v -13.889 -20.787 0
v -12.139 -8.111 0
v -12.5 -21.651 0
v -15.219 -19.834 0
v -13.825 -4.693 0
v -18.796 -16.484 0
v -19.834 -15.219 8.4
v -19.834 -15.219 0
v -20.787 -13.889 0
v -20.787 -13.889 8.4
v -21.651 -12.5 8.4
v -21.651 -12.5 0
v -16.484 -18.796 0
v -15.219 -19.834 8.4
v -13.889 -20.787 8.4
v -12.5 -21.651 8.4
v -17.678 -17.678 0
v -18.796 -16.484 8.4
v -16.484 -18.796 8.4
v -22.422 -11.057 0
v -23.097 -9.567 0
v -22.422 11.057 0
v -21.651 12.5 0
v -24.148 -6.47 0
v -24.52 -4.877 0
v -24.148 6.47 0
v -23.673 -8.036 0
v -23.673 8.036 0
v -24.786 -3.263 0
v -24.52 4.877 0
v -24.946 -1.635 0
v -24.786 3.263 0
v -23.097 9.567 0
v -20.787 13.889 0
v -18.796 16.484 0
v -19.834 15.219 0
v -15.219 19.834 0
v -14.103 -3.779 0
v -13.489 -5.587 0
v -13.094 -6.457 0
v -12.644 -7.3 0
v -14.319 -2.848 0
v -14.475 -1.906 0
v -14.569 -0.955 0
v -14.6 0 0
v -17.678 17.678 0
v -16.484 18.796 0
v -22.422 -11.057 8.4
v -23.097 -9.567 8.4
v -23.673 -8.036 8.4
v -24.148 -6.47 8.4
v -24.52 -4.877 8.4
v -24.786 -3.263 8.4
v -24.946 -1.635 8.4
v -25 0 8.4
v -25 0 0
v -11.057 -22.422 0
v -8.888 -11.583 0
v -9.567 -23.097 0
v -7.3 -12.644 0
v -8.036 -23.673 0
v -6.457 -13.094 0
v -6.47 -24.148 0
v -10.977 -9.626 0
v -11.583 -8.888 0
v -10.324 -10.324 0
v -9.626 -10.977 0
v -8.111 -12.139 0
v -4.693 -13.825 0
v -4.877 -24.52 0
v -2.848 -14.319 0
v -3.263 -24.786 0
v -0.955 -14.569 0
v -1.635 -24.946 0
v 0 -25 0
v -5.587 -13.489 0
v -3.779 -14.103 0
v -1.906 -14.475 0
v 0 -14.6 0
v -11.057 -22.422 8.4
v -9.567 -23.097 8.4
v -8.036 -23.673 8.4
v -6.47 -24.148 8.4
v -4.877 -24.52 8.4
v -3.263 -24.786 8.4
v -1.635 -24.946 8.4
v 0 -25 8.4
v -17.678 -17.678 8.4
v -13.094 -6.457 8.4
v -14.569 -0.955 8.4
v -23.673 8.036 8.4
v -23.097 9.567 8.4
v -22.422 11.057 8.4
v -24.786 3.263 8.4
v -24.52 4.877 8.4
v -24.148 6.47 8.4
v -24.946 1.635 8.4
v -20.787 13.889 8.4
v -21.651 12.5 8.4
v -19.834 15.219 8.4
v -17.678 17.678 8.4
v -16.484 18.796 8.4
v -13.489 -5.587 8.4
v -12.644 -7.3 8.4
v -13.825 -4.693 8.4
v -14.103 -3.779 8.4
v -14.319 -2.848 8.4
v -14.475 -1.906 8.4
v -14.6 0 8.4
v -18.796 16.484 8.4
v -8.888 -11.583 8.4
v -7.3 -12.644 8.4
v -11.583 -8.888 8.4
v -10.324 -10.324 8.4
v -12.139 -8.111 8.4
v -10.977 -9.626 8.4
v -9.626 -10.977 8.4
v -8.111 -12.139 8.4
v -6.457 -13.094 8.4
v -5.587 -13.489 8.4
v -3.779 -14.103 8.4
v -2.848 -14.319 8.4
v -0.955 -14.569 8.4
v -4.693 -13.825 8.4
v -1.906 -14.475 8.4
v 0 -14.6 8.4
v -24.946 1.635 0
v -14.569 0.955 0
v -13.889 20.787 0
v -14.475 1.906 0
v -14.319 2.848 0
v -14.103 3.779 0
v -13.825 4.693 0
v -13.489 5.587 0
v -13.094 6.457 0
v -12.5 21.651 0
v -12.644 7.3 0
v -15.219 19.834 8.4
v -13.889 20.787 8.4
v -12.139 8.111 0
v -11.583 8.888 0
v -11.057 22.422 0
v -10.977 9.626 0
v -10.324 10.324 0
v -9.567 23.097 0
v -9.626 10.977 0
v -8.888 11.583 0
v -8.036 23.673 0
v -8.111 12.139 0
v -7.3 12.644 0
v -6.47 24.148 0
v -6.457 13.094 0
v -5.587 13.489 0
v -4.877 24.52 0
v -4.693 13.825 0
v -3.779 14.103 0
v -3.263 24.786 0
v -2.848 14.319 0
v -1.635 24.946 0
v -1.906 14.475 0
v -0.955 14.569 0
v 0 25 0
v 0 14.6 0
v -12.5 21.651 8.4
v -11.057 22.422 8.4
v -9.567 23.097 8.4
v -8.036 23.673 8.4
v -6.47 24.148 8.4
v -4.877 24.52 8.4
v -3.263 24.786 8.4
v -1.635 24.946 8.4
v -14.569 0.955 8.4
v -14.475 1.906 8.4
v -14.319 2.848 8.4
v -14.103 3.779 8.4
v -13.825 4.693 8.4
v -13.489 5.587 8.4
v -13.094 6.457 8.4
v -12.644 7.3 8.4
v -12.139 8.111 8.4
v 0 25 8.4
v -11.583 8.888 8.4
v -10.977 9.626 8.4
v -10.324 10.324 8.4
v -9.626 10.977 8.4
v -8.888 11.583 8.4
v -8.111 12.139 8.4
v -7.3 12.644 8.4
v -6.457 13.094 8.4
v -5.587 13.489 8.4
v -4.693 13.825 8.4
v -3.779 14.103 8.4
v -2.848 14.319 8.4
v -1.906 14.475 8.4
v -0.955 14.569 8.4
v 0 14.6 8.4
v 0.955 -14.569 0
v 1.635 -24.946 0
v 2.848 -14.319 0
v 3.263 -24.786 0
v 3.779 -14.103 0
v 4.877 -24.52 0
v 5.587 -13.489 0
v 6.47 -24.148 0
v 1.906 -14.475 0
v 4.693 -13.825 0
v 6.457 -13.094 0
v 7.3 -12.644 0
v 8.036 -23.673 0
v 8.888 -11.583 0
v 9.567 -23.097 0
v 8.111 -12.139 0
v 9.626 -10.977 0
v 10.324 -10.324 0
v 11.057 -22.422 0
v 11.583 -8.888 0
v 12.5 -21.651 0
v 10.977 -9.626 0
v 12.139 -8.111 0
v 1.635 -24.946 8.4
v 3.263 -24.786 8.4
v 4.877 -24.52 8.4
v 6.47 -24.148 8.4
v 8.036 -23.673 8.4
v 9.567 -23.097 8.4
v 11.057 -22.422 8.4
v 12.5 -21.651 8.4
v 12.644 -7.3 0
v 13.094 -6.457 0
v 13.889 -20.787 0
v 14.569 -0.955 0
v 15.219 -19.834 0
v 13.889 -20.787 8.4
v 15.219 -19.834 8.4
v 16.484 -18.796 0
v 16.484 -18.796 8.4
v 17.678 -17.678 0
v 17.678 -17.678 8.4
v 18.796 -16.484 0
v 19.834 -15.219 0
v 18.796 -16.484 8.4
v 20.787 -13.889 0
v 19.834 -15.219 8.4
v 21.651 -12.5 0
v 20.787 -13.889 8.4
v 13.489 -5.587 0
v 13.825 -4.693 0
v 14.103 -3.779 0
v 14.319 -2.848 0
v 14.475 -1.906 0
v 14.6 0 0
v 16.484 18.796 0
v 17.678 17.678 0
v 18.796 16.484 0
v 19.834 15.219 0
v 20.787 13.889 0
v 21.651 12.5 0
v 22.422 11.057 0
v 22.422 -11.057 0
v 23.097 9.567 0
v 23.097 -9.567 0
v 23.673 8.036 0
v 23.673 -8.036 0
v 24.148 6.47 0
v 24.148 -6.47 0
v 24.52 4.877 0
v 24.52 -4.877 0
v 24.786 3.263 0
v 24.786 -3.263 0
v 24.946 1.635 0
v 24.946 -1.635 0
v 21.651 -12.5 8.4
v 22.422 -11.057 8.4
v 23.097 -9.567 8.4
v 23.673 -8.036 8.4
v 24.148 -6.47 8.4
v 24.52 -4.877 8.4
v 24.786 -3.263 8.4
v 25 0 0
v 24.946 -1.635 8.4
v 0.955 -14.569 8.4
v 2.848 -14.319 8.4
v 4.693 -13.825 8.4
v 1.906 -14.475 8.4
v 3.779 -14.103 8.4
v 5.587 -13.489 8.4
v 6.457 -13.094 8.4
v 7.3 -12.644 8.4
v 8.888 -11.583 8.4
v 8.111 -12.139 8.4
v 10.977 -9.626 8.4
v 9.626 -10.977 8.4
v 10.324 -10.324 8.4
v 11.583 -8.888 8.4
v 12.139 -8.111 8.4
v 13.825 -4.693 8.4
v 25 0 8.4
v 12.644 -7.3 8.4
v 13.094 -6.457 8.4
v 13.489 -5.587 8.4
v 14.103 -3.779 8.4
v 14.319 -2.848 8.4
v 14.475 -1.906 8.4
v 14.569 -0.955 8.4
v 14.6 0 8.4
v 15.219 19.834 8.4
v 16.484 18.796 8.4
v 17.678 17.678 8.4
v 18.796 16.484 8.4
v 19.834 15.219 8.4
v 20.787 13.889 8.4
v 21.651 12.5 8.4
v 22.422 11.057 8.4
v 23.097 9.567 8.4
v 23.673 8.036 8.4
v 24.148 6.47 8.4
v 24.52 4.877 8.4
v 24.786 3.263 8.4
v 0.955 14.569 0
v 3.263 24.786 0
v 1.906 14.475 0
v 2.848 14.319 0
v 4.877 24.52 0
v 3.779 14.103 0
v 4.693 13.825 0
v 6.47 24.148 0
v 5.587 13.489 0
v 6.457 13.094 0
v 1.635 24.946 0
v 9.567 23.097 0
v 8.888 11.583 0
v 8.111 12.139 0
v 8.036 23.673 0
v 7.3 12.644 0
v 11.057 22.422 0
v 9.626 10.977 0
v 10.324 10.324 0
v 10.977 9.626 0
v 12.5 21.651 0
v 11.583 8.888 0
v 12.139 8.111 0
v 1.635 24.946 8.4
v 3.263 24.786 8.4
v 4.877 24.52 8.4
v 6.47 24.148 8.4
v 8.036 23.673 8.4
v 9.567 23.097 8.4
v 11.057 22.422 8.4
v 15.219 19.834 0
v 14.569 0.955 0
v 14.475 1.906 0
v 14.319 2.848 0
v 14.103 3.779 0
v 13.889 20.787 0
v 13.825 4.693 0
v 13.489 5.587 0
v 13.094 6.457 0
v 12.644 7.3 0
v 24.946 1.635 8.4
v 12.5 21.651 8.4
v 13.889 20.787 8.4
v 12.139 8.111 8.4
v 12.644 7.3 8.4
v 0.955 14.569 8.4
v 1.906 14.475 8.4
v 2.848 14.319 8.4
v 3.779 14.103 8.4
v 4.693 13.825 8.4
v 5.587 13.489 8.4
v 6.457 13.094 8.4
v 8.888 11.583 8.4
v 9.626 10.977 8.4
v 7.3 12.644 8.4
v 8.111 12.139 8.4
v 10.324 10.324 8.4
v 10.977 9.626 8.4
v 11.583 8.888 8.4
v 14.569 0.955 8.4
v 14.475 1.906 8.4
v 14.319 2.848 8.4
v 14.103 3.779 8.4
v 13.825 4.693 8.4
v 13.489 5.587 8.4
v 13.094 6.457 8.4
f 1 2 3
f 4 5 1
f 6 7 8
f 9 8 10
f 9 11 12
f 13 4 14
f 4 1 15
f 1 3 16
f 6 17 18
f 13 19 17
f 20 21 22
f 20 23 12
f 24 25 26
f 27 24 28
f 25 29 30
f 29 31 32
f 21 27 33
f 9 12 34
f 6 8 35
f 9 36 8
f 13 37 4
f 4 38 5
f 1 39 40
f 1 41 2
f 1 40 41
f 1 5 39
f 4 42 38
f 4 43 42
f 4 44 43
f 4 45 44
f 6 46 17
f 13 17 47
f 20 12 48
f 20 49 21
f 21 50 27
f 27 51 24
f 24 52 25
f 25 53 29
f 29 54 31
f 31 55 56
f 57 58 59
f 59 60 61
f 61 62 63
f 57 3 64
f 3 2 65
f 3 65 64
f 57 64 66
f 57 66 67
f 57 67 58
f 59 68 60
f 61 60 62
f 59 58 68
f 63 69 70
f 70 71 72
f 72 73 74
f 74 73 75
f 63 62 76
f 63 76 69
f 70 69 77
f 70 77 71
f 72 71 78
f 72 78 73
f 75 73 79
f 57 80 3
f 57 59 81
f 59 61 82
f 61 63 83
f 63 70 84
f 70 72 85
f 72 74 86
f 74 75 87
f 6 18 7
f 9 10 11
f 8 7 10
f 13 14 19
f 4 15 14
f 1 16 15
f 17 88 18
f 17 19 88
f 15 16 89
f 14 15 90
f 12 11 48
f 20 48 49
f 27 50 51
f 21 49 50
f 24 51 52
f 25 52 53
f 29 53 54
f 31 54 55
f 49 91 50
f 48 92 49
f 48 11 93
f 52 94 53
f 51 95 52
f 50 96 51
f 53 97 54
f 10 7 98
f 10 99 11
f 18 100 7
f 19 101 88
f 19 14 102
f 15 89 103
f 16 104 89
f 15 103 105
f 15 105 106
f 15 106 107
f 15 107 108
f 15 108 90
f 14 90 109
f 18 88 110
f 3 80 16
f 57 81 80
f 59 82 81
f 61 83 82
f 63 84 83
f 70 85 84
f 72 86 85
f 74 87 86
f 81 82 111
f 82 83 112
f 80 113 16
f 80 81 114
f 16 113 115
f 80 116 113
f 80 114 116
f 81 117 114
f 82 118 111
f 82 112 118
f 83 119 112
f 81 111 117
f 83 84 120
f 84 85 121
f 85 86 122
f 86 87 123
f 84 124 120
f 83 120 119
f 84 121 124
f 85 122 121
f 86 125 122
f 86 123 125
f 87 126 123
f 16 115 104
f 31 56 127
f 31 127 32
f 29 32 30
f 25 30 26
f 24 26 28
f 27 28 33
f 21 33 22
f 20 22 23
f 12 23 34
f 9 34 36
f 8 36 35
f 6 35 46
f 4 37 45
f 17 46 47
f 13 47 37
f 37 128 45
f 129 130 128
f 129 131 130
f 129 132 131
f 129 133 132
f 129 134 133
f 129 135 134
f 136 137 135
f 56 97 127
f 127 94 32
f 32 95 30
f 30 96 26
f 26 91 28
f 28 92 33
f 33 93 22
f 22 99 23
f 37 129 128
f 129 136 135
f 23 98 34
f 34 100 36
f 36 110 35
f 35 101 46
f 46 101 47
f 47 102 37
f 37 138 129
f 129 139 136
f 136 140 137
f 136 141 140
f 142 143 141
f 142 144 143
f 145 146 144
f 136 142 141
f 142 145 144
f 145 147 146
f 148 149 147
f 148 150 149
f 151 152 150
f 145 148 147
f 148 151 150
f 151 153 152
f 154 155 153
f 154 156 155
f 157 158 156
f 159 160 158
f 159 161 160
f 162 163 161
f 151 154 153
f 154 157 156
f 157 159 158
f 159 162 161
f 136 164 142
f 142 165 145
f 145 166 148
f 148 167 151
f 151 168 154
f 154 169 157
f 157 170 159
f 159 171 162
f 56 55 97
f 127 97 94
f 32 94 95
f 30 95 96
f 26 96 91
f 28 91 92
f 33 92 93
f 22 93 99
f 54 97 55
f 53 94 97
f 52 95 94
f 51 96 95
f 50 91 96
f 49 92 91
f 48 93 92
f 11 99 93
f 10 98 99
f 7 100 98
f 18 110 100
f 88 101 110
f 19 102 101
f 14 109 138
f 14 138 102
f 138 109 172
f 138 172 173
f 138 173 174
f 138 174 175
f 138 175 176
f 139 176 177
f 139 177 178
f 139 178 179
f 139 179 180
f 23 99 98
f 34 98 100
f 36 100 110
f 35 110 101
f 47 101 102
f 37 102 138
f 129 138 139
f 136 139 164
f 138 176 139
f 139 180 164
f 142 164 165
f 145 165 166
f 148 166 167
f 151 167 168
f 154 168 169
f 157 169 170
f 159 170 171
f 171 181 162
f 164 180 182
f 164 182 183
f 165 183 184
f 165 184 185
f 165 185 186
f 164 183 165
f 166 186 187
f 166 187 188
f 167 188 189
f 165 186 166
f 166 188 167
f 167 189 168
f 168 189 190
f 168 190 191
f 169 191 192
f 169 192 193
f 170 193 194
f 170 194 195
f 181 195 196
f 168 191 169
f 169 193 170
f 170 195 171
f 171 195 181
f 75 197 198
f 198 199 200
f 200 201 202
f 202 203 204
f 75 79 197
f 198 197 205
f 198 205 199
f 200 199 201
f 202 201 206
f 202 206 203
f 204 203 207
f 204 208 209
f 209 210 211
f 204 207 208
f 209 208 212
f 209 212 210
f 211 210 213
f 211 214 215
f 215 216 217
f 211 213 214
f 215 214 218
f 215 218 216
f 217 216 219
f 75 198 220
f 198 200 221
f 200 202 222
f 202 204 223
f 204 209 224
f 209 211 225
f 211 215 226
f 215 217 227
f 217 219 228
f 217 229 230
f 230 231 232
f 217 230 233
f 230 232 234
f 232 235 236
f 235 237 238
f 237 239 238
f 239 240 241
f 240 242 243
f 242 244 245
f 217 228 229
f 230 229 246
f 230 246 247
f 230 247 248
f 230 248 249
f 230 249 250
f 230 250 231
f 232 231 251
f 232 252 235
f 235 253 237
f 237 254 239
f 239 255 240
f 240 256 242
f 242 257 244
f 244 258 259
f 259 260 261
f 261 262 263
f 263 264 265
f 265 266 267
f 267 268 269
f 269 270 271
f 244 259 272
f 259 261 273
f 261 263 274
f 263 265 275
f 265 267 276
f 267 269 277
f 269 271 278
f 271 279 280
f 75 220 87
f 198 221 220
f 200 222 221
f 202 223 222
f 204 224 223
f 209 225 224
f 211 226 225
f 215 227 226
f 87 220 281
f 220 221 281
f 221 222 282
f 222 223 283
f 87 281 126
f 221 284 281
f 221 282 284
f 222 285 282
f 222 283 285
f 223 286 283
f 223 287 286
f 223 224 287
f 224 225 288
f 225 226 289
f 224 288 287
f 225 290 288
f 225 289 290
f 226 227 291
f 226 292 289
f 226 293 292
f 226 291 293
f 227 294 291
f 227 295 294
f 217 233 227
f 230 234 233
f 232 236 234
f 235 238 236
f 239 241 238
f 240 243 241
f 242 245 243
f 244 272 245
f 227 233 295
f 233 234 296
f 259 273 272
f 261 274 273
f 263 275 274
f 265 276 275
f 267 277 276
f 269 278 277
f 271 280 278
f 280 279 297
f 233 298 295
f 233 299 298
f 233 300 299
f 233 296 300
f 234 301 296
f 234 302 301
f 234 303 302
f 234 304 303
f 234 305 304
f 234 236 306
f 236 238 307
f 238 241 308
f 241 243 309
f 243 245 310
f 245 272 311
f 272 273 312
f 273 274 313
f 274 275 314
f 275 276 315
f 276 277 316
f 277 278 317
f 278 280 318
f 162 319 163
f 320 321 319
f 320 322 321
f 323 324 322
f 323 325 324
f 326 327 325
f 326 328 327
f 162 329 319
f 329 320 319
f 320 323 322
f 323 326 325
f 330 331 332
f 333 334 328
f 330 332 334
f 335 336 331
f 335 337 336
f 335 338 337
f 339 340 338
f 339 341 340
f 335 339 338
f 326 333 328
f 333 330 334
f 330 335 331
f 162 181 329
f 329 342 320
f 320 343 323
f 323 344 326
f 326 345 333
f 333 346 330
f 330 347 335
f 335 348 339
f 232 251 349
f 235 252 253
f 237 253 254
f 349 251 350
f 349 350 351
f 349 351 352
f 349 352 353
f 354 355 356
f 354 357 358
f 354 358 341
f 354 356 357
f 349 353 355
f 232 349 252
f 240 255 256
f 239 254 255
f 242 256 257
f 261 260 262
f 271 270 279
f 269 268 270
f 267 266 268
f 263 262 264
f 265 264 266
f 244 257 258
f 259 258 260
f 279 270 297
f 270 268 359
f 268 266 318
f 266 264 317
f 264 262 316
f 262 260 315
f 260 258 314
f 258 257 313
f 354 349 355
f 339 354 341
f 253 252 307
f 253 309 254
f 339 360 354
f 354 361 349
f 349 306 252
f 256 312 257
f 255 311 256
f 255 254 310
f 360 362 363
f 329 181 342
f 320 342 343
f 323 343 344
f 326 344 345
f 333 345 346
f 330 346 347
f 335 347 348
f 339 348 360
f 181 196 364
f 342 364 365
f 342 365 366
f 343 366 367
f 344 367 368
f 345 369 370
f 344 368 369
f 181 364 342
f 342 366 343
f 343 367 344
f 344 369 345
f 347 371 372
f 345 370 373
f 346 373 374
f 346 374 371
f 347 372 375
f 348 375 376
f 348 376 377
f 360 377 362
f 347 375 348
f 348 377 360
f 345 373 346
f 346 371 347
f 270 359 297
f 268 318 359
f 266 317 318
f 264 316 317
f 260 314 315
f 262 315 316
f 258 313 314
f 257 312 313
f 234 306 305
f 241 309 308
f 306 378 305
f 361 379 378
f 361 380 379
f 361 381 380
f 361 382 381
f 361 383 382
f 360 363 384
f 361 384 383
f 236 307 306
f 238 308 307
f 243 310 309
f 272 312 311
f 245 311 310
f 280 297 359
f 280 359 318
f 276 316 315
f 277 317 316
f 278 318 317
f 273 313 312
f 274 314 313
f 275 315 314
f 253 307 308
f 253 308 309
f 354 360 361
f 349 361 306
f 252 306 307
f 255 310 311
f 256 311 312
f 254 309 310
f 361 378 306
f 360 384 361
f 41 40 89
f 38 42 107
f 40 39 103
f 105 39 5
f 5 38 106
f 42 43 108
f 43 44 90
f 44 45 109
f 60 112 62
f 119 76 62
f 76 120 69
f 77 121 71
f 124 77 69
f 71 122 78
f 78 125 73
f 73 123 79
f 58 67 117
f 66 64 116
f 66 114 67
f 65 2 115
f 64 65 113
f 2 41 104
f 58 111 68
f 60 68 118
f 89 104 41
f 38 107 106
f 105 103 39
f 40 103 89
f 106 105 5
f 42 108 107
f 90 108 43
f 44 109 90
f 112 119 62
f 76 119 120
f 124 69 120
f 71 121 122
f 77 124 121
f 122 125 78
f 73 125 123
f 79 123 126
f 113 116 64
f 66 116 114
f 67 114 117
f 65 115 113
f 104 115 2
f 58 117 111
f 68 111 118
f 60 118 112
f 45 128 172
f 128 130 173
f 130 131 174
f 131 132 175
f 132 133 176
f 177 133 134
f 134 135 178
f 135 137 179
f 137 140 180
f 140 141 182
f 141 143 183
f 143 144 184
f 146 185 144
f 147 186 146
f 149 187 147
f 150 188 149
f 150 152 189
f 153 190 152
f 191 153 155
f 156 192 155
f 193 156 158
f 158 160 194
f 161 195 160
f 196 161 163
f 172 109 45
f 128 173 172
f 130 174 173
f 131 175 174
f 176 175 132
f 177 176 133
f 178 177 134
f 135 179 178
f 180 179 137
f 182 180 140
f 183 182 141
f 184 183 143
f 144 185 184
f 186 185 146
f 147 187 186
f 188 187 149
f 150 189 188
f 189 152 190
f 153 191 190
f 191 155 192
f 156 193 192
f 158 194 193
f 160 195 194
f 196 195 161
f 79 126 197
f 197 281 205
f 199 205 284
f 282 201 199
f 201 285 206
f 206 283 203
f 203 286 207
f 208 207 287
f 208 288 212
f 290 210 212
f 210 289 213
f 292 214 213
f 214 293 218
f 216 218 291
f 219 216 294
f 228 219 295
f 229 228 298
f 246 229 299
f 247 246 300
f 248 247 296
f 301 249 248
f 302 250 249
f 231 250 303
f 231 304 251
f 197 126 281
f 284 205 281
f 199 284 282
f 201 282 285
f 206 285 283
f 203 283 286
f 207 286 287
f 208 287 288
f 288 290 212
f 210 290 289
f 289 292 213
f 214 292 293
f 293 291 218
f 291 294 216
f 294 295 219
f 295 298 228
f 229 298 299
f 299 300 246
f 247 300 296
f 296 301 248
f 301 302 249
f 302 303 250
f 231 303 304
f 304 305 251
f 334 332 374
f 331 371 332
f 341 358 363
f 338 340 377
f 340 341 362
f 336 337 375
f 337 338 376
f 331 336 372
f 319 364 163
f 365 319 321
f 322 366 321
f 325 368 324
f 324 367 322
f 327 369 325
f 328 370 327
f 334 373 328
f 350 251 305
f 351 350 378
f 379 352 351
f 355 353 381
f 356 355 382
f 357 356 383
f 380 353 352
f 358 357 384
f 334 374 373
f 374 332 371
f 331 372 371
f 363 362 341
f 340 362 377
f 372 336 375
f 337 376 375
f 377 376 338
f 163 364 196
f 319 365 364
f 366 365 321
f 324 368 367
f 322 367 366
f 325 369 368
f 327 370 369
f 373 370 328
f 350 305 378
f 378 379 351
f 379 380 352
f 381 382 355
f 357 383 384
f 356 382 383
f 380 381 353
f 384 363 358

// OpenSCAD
// file: params.scad
// GENERATED by design/build.py from design/params.py -- do not edit by hand.

C = 60.0;
N_SLOTS = 16.0;
T_BLADE = 8.0;
SIDE_CLEAR = 0.2;
T_SPACER = 8.4;
END_CLEAR = 0.5;
R_TIP = 34.0;
R_ROOT = 25.0;
TEETH = 3.0;
STAGGER_DEG = 15.0;
BLADE_VARIANTS = 4.0;
SPACER_OD = 50.0;
SPACER_BORE = 29.2;
HEX_AF = 25.05;
HEX_BORE_AF = 25.1;
HEX_RELIEF_D = 3.2;
JOURNAL_D = 25.0;
PLATE_H = 70.0;
PLATE_L = 170.0;
LAYER_T = 10.0;
INNER_HOLE_D = 36.0;
CAP_HOLE_D = 32.0;
SEAL_BORE_DEPTH = 7.0;
CAP_BORE_DEPTH = 7.0;
COLLAR_OD = 46.0;
COLLAR_T = 4.0;
SLEEVE_OD = 30.0;
SLEEVE_ID = 25.05;
COMB_W = 25.0;
COMB_GAP = 0.5;
COMB_SLOT_CLEAR = 0.5;
COMB_SLOT_PAST_TIP = 3.0;
COMB_SCREW_Y = 74.0;
WALL_H = 50.0;
WALL_GAP = 2.0;
END_WASHER_T = 10.0;
END_SCREW_LEN = 30.0;
PRINTER_X = 250.0;
PRINTER_Y = 210.0;
PRINTER_Z = 210.0;
PRINT_WALL = 3.0;
PRINT_FLANGE = 4.0;
HOPPER_TOP_Z = 305.0;
HOPPER_TOP_IN = 180.0;
HOPPER_SPLIT_Z = 105.0;
TOP_HOLE_Y = 10.0;
TOP_HOLE_DEPTH = 10.0;
WALL_TOP_HOLE_X = 30.0;
WALL_TOP_HOLE_Y = 71.0;
GUARD_HOLE_Y = 80.0;
GUARD_HOLE_Z = 9.0;
GUARD_CLEAR = 3.0;
BASE_T = 18.0;
WORM_AXIS_DROP = 63.0;
GROUND_Z = -368.0;
MOTOR_SHAFT_L = 40.0;
TL_B_CLEAR = 5.0;
HANDLE_W = 110.0;
HANDLE_H = 40.0;
HANDLE_BACK_T = 8.0;
HANDLE_LIP_D = 26.0;
HANDLE_Z = -200.0;
HANDLE_SCREW_DX = 35.0;
HANDLE_HOLE_D = 4.5;
INSERT_D = 5.6;
INSERT_DEPTH = 6.0;
DRF_GAP = 1.0;
SW_PAD_L = 92.0;
SW_PAD_W = 32.0;
SW_PAD_T = 10.0;
SW_SCREW_SPACING = 22.0;
INTERLOCK_IN = 12.0;
INTERLOCK_OUT_TRAVEL = 15.0;
CG_END_GAP = 1.0;
CG_FOOT_W = 36.0;
CG_FOOT_T = 4.0;
CG_FOOT_REACH = 16.0;
DECK_PLY_T = 18.0;
DECK_MARGIN = 30.0;
LEG_SECTION = 45.0;
STUB_D = 25.0;
STUB_L = 80.0;
STUB_END_D = 30.0;
STUB_END_L = 60.0;
STUB_FLAT_AF = 22.0;
STUB_FLAT_L = 40.0;
STUB_KEY_L = 70.0;
T_LIMIT = 63.25;
HOOK_DEG = 10.0;
TEST_PIN_D = 12.0;
TEST_PIN_R = 32.0;
TEST_PIN_PROJ = 9.0;
TEST_BLADE_GAP = 1.0;
TEST_LEVER_L = 540.0;
TEST_LEVER_W = 50.0;
TEST_LEVER_T = 10.0;
TEST_LEVER_PIVOT_END = 25.0;
TEST_LEVER_PIVOT_D = 25.2;
TEST_WEIGHT_ARM = 500.0;
TEST_WEIGHT_HOLE_D = 10.5;
TEST_WEIGHT_KG = 11.9;
TEST_BLADE_ROT = -30.0;
TEST_LEVER_DEG = 0.0;
T_SET = 55.0;
T_OPERATING = 45.0;
TL_SET_AT_TL = 55.0;
SUBPLATE_T = 20.0;
GB_BOX = [100.0, 100.0, 145.0];
GB_BELOW_OUT = 113.0;
GB_BOSS = 9.0;
GB_FOOT = [124.0, 76.0];
GB_FLANGE = [140.0, 100.0, 8.0];
GB_WORM_STUB = 40.0;
SPROCKET_T = 7.2;
SPROCKET_OD_EXTRA = 6.2;
SPROCKET_ROOT = 7.92;
CHAIN_ENV_W = 18.0;
CHAIN_ENV_H = 12.1;
DRIVE_LEG_MIN = 60.0;
PIN_N = 4.0;
PIN_D = 8.0;
PIN_L = 32.0;
PIN_R = 50.5;
PIN_HOLE_D = 8.5;
PF_D = 120.0;
PF_T = 12.0;
PF_GAP = 2.0;
PF_HUB_D = 50.0;
PF_POCKET_D = 36.0;
PF_POCKET_CLEAR = 2.0;
PF_KEY_L = 25.0;
PF_SHAFT_RECESS = 1.0;
DG_SEAM_Z = 0.0;
DG_FLANGE_W = 12.0;
DG_FLANGE_T = 4.0;
TLFIX_ARM = 500.0;
TLFIX_LEVER_L = 600.0;
TLFIX_LEVER_W = 50.0;
TLFIX_LEVER_T = 10.0;
TL_HUB_D = 42.0;
TL_FLANGE_T = 8.0;
TL_CM_OFFSET = 12.0;
TL_GB_GAP = 3.0;
TL_PACK_D = 70.0;
TL_PRESS_T = 8.0;
TL_SPRING_L = 26.0;
GB_HUB_L = 72.0;
OUT_SPACER_D = 36.0;
SHAFT_KEY_W = 8.0;
SHAFT_KEY_D = 4.0;
GB_KEY_END = 6.0;
TL_KEY_END = 3.0;
CIRCLIP_GROOVE_D = 23.9;
CIRCLIP_GROOVE_W = 1.3;
CIRCLIP_T = 1.2;
CIRCLIP_OD = 31.4;
CIRCLIP_EDGE = 3.0;
GB_RAIL_W = 50.0;
GB_RAIL_T = 10.0;
GB_RAIL_SLOT = 6.0;
GB_RAIL_BOLT_DX = 86.0;
GB_RAIL_END = 10.0;
GB_SPACER_L = 18.0;
DECK_RAIL_MARGIN = 20.0;
DECK_ANCHOR_D = 8.0;
DECK_ANGLE = [40.0, 40.0, 4.0];
DECK_ANGLE_L = 44.0;
DECK_ANGLE_DECK_BOLTS = 2.0;
DECK_ANGLE_LEG_BOLTS = 2.0;
FOOT_ANGLE_LEG_BOLTS = 2.0;
FOOT_ANGLE_ANCHORS = 2.0;
BIG_WASHER_D = 24.0;
BIG_WASHER_T = 2.0;
DECK_LEG_INSET_Y = 45.0;
TLFIX_PIN_L = 25.0;
TLFIX_LEVER_GAP = 5.0;
TLFIX_PIVOT_D = 25.2;
TLFIX_LUG = [20.0, 20.0];
TLFIX_LUG_GAP = 2.4;
SW_BODY = [31.0, 30.0, 90.0];
SW_HOLE_SPACING = 22.0;
SW_SLOT = [5.0, 23.0, 20.0];
ACT_SIZE = [12.0, 20.0, 50.0];
ACT_BLADE_T = 3.0;
ACT_BLADE_L = 20.0;
ACT_HOLE_SPACING = 20.0;
PILOT_D = 3.3;
PILOT_DEPTH = 8.0;
HSW_BODY = [42.0, 38.0, 112.0];
HSW_HOLE_SPACING = 22.0;
HSW_SLOT = [6.0, 24.0, 25.0];
HACT_SIZE = [15.0, 20.0, 68.0];
HACT_BLADE_T = 3.0;
HACT_BLADE_L = 22.0;
HACT_HOLE_SPACING = 30.0;
HSW_SCREW = [4.0, 4.5, 7.0, 3.0, 3.3];
HACT_SCREW = [5.0, 5.5, 8.5, 3.5, 4.2];
HSW_PAD_W = 48.0;
SCREEN_GAP = 2.0;
SCREEN_T = 10.0;
SCREEN_HOLE_D = 5.0;
SCREEN_HOLE_PITCH = 8.0;
SCREEN_HOLE_SLOPE = 50.0;
SCREEN_RELIEF_D = 6.5;
SCREEN_END_GAP = 0.5;
SCREEN_SCREW = [4.0, 4.5, 7.0, 4.0, 8.5];
SCREEN_SCREW_Y = 74.0;
SCREEN_TAP_DEPTH = 9.0;
SCREEN_SCREW_LAND = 8.0;
SCREEN_POCKET = [11.0, 6.0];
WALL_SCREW_HEAD = [8.5, 5.0];
BASE_CUT_Y = 83.0;
CPL_D = 54.0;
CPL_hub_L = 20.6;
CPL_gap = 12.7;
BEARING_name = "NA4905 needle roller bearing with inner ring";
BEARING_d = 25.0;
BEARING_D = 42.0;
BEARING_B = 17.0;
BEARING_F = 30.0;
BEARING_C = 23700.0;
BEARING_C0 = 20500.0;
GEAR_module = 4.0;
GEAR_z = 15.0;
GEAR_alpha = 20.0;
GEAR_bore = 25.0;
GEAR_hub_L = 18.0;
GEAR_cut_extra = 0.1;
GEAR_FACE = 30.0;
GEAR_HUB_L = 18.0;
GEAR_HUB_D = 45.0;
GEAR_SPACER_D = 30.0;
GEAR_KEY_W = 8.0;
GEAR_KEYWAY_H = 3.3;
GEAR_KEY_TOOL_D = 0.4;
OB_T = 10.0;
OB_H = 100.0;
OB_ZC = 3.0;
OB_L = 180.0;
OB_GAP = 2.0;
OB_STEP = 1.5;
PILLAR = [15.0, 60.0];
PILLAR_Y0 = 73.0;
TIE_D = 8.0;
TIE_WASHERS = 3.0;
HOOD_SCREW_PTS = [[76.0, 28.0], [76.0, -28.0], [-76.0, 28.0], [-76.0, -28.0]];
SEAL_d = 30.0;
SEAL_D = 42.0;
SEAL_B = 7.0;
THRUST_d = 30.0;
THRUST_D = 47.0;
THRUST_T = 4.0;
CRINKLE_d = 30.0;
CRINKLE_D = 39.0;
CRINKLE_n = 3.0;
CRINKLE_stack_h = 2.0;
TL_z = 30.0;
TL_L = 62.0;
TL_D = 89.0;
TL_T_min = 34.0;
TL_T_max = 149.0;
CHAIN_pitch = 12.7;
DECK_ANCHOR = "M8";

// derived
blades_per_shaft = 8.0;
stack_A = 131.2;
end_spacer_B = 8.2;
stack_B = 131.0;
chamber_L = 132.2;
overlap = 8.0;
tip_to_spacer = 1.0;
hex_AC = 28.9252;
bore_AC = 28.983;
bearing_x_drive = -18.5;
bearing_x_free = 150.7;
bearing_span = 169.2;
sleeve_L_drive = 10.5;
sleeve_L_free_A = 10.5;
sleeve_L_free_B = 10.7;
x_inner_ring_out_drive = -27.0;
x_cap_out_drive = -30.0;
collar_body_L_drive = 7.0;
x_collar_in_drive = -34.0;
x_collar_out_drive = -38.0;
gear_face = 30.0;
x_gear_in = -38.0;
x_gear_out = -68.0;
x_gear_hub_out = -86.0;
x_ob_in = -88.0;
x_ob_out = -108.0;
x_ob_ring_in = -89.5;
x_ob_ring_out = -106.5;
bearing_x_ob = -98.0;
gear_spacer_L = 3.5;
x_sprocket_in = -110.0;
ob_sleeve_L = 3.5;
x_spA_in = -135.0;
x_sprocket_out = -197.0;
x_cm = -185.0;
a_end_hub_L = 62.0;
ob_sleeve_A_L = 28.5;
standoff_L = 58.0;
x_sprocket_c = -166.0;
x_inner_ring_out_free = 159.2;
x_cap_out_free = 162.2;
collar_body_L_free = 9.0;
x_collar_in_free = 168.2;
x_collar_out_free = 172.2;
shaft_end_free = 170.7;
shaft_end_A_drive = -195.5;
shaft_end_B_drive = -108.5;
shaft_A_len = 366.2;
shaft_B_len = 279.2;
tl_sprocket_pd = 121.498;
sprocket_A_pd = 121.498;
tl_sprocket_root_d = 113.578;
hex_x0 = 1.5;
hex_x1 = 130.7;
gear_pitch_d = 60.0;
gear_od = 68.0;
gear_root_d_std = 50.0;
gear_root_d = 49.8;
gear_cut_depth = 9.1;
comb_edge_y = 55.5;
comb_slot_w = 9.0;
comb_slot_bottom_y = 67.0;
wall_inner_y = 66.0;

// blade torque test lever: computed from the blade outline (design/build.py, test_lever_numbers)
test_pin_Rmin = 30.9995;
test_pin_s = 1.4836;
test_pin_psi = 10.1718;
test_pin_contact_r = 32.54;
test_pin_clear = 0.1807;
hook_face_len = 4.546;
hook_face_end_r = 29.5336;
test_pin_off = -10.8544;
test_pin_edge_steel = 8.1456;
test_pin_ring_steel = 13.4;
test_pin_F = 1976.5625;
test_pin_sigma = 58.2555;
test_pin_deg = -19.8282;
test_face_nrm_deg = 70.0;
// main file
// spacer.scad -- round spacer tube. Part frame: axis along +Z, one end on Z = 0.
include <params.scad>

module spacer(t = T_SPACER) {
    $fn = 96;
    difference() {
        cylinder(d = SPACER_OD, h = t);
        translate([0, 0, -1]) cylinder(d = SPACER_BORE, h = t + 2);
    }
}

// standalone render:  -D 'kind="end_B"'  for the 8.15 end spacer of shaft B
kind = "normal";
spacer(kind == "end_B" ? end_spacer_B : T_SPACER);
